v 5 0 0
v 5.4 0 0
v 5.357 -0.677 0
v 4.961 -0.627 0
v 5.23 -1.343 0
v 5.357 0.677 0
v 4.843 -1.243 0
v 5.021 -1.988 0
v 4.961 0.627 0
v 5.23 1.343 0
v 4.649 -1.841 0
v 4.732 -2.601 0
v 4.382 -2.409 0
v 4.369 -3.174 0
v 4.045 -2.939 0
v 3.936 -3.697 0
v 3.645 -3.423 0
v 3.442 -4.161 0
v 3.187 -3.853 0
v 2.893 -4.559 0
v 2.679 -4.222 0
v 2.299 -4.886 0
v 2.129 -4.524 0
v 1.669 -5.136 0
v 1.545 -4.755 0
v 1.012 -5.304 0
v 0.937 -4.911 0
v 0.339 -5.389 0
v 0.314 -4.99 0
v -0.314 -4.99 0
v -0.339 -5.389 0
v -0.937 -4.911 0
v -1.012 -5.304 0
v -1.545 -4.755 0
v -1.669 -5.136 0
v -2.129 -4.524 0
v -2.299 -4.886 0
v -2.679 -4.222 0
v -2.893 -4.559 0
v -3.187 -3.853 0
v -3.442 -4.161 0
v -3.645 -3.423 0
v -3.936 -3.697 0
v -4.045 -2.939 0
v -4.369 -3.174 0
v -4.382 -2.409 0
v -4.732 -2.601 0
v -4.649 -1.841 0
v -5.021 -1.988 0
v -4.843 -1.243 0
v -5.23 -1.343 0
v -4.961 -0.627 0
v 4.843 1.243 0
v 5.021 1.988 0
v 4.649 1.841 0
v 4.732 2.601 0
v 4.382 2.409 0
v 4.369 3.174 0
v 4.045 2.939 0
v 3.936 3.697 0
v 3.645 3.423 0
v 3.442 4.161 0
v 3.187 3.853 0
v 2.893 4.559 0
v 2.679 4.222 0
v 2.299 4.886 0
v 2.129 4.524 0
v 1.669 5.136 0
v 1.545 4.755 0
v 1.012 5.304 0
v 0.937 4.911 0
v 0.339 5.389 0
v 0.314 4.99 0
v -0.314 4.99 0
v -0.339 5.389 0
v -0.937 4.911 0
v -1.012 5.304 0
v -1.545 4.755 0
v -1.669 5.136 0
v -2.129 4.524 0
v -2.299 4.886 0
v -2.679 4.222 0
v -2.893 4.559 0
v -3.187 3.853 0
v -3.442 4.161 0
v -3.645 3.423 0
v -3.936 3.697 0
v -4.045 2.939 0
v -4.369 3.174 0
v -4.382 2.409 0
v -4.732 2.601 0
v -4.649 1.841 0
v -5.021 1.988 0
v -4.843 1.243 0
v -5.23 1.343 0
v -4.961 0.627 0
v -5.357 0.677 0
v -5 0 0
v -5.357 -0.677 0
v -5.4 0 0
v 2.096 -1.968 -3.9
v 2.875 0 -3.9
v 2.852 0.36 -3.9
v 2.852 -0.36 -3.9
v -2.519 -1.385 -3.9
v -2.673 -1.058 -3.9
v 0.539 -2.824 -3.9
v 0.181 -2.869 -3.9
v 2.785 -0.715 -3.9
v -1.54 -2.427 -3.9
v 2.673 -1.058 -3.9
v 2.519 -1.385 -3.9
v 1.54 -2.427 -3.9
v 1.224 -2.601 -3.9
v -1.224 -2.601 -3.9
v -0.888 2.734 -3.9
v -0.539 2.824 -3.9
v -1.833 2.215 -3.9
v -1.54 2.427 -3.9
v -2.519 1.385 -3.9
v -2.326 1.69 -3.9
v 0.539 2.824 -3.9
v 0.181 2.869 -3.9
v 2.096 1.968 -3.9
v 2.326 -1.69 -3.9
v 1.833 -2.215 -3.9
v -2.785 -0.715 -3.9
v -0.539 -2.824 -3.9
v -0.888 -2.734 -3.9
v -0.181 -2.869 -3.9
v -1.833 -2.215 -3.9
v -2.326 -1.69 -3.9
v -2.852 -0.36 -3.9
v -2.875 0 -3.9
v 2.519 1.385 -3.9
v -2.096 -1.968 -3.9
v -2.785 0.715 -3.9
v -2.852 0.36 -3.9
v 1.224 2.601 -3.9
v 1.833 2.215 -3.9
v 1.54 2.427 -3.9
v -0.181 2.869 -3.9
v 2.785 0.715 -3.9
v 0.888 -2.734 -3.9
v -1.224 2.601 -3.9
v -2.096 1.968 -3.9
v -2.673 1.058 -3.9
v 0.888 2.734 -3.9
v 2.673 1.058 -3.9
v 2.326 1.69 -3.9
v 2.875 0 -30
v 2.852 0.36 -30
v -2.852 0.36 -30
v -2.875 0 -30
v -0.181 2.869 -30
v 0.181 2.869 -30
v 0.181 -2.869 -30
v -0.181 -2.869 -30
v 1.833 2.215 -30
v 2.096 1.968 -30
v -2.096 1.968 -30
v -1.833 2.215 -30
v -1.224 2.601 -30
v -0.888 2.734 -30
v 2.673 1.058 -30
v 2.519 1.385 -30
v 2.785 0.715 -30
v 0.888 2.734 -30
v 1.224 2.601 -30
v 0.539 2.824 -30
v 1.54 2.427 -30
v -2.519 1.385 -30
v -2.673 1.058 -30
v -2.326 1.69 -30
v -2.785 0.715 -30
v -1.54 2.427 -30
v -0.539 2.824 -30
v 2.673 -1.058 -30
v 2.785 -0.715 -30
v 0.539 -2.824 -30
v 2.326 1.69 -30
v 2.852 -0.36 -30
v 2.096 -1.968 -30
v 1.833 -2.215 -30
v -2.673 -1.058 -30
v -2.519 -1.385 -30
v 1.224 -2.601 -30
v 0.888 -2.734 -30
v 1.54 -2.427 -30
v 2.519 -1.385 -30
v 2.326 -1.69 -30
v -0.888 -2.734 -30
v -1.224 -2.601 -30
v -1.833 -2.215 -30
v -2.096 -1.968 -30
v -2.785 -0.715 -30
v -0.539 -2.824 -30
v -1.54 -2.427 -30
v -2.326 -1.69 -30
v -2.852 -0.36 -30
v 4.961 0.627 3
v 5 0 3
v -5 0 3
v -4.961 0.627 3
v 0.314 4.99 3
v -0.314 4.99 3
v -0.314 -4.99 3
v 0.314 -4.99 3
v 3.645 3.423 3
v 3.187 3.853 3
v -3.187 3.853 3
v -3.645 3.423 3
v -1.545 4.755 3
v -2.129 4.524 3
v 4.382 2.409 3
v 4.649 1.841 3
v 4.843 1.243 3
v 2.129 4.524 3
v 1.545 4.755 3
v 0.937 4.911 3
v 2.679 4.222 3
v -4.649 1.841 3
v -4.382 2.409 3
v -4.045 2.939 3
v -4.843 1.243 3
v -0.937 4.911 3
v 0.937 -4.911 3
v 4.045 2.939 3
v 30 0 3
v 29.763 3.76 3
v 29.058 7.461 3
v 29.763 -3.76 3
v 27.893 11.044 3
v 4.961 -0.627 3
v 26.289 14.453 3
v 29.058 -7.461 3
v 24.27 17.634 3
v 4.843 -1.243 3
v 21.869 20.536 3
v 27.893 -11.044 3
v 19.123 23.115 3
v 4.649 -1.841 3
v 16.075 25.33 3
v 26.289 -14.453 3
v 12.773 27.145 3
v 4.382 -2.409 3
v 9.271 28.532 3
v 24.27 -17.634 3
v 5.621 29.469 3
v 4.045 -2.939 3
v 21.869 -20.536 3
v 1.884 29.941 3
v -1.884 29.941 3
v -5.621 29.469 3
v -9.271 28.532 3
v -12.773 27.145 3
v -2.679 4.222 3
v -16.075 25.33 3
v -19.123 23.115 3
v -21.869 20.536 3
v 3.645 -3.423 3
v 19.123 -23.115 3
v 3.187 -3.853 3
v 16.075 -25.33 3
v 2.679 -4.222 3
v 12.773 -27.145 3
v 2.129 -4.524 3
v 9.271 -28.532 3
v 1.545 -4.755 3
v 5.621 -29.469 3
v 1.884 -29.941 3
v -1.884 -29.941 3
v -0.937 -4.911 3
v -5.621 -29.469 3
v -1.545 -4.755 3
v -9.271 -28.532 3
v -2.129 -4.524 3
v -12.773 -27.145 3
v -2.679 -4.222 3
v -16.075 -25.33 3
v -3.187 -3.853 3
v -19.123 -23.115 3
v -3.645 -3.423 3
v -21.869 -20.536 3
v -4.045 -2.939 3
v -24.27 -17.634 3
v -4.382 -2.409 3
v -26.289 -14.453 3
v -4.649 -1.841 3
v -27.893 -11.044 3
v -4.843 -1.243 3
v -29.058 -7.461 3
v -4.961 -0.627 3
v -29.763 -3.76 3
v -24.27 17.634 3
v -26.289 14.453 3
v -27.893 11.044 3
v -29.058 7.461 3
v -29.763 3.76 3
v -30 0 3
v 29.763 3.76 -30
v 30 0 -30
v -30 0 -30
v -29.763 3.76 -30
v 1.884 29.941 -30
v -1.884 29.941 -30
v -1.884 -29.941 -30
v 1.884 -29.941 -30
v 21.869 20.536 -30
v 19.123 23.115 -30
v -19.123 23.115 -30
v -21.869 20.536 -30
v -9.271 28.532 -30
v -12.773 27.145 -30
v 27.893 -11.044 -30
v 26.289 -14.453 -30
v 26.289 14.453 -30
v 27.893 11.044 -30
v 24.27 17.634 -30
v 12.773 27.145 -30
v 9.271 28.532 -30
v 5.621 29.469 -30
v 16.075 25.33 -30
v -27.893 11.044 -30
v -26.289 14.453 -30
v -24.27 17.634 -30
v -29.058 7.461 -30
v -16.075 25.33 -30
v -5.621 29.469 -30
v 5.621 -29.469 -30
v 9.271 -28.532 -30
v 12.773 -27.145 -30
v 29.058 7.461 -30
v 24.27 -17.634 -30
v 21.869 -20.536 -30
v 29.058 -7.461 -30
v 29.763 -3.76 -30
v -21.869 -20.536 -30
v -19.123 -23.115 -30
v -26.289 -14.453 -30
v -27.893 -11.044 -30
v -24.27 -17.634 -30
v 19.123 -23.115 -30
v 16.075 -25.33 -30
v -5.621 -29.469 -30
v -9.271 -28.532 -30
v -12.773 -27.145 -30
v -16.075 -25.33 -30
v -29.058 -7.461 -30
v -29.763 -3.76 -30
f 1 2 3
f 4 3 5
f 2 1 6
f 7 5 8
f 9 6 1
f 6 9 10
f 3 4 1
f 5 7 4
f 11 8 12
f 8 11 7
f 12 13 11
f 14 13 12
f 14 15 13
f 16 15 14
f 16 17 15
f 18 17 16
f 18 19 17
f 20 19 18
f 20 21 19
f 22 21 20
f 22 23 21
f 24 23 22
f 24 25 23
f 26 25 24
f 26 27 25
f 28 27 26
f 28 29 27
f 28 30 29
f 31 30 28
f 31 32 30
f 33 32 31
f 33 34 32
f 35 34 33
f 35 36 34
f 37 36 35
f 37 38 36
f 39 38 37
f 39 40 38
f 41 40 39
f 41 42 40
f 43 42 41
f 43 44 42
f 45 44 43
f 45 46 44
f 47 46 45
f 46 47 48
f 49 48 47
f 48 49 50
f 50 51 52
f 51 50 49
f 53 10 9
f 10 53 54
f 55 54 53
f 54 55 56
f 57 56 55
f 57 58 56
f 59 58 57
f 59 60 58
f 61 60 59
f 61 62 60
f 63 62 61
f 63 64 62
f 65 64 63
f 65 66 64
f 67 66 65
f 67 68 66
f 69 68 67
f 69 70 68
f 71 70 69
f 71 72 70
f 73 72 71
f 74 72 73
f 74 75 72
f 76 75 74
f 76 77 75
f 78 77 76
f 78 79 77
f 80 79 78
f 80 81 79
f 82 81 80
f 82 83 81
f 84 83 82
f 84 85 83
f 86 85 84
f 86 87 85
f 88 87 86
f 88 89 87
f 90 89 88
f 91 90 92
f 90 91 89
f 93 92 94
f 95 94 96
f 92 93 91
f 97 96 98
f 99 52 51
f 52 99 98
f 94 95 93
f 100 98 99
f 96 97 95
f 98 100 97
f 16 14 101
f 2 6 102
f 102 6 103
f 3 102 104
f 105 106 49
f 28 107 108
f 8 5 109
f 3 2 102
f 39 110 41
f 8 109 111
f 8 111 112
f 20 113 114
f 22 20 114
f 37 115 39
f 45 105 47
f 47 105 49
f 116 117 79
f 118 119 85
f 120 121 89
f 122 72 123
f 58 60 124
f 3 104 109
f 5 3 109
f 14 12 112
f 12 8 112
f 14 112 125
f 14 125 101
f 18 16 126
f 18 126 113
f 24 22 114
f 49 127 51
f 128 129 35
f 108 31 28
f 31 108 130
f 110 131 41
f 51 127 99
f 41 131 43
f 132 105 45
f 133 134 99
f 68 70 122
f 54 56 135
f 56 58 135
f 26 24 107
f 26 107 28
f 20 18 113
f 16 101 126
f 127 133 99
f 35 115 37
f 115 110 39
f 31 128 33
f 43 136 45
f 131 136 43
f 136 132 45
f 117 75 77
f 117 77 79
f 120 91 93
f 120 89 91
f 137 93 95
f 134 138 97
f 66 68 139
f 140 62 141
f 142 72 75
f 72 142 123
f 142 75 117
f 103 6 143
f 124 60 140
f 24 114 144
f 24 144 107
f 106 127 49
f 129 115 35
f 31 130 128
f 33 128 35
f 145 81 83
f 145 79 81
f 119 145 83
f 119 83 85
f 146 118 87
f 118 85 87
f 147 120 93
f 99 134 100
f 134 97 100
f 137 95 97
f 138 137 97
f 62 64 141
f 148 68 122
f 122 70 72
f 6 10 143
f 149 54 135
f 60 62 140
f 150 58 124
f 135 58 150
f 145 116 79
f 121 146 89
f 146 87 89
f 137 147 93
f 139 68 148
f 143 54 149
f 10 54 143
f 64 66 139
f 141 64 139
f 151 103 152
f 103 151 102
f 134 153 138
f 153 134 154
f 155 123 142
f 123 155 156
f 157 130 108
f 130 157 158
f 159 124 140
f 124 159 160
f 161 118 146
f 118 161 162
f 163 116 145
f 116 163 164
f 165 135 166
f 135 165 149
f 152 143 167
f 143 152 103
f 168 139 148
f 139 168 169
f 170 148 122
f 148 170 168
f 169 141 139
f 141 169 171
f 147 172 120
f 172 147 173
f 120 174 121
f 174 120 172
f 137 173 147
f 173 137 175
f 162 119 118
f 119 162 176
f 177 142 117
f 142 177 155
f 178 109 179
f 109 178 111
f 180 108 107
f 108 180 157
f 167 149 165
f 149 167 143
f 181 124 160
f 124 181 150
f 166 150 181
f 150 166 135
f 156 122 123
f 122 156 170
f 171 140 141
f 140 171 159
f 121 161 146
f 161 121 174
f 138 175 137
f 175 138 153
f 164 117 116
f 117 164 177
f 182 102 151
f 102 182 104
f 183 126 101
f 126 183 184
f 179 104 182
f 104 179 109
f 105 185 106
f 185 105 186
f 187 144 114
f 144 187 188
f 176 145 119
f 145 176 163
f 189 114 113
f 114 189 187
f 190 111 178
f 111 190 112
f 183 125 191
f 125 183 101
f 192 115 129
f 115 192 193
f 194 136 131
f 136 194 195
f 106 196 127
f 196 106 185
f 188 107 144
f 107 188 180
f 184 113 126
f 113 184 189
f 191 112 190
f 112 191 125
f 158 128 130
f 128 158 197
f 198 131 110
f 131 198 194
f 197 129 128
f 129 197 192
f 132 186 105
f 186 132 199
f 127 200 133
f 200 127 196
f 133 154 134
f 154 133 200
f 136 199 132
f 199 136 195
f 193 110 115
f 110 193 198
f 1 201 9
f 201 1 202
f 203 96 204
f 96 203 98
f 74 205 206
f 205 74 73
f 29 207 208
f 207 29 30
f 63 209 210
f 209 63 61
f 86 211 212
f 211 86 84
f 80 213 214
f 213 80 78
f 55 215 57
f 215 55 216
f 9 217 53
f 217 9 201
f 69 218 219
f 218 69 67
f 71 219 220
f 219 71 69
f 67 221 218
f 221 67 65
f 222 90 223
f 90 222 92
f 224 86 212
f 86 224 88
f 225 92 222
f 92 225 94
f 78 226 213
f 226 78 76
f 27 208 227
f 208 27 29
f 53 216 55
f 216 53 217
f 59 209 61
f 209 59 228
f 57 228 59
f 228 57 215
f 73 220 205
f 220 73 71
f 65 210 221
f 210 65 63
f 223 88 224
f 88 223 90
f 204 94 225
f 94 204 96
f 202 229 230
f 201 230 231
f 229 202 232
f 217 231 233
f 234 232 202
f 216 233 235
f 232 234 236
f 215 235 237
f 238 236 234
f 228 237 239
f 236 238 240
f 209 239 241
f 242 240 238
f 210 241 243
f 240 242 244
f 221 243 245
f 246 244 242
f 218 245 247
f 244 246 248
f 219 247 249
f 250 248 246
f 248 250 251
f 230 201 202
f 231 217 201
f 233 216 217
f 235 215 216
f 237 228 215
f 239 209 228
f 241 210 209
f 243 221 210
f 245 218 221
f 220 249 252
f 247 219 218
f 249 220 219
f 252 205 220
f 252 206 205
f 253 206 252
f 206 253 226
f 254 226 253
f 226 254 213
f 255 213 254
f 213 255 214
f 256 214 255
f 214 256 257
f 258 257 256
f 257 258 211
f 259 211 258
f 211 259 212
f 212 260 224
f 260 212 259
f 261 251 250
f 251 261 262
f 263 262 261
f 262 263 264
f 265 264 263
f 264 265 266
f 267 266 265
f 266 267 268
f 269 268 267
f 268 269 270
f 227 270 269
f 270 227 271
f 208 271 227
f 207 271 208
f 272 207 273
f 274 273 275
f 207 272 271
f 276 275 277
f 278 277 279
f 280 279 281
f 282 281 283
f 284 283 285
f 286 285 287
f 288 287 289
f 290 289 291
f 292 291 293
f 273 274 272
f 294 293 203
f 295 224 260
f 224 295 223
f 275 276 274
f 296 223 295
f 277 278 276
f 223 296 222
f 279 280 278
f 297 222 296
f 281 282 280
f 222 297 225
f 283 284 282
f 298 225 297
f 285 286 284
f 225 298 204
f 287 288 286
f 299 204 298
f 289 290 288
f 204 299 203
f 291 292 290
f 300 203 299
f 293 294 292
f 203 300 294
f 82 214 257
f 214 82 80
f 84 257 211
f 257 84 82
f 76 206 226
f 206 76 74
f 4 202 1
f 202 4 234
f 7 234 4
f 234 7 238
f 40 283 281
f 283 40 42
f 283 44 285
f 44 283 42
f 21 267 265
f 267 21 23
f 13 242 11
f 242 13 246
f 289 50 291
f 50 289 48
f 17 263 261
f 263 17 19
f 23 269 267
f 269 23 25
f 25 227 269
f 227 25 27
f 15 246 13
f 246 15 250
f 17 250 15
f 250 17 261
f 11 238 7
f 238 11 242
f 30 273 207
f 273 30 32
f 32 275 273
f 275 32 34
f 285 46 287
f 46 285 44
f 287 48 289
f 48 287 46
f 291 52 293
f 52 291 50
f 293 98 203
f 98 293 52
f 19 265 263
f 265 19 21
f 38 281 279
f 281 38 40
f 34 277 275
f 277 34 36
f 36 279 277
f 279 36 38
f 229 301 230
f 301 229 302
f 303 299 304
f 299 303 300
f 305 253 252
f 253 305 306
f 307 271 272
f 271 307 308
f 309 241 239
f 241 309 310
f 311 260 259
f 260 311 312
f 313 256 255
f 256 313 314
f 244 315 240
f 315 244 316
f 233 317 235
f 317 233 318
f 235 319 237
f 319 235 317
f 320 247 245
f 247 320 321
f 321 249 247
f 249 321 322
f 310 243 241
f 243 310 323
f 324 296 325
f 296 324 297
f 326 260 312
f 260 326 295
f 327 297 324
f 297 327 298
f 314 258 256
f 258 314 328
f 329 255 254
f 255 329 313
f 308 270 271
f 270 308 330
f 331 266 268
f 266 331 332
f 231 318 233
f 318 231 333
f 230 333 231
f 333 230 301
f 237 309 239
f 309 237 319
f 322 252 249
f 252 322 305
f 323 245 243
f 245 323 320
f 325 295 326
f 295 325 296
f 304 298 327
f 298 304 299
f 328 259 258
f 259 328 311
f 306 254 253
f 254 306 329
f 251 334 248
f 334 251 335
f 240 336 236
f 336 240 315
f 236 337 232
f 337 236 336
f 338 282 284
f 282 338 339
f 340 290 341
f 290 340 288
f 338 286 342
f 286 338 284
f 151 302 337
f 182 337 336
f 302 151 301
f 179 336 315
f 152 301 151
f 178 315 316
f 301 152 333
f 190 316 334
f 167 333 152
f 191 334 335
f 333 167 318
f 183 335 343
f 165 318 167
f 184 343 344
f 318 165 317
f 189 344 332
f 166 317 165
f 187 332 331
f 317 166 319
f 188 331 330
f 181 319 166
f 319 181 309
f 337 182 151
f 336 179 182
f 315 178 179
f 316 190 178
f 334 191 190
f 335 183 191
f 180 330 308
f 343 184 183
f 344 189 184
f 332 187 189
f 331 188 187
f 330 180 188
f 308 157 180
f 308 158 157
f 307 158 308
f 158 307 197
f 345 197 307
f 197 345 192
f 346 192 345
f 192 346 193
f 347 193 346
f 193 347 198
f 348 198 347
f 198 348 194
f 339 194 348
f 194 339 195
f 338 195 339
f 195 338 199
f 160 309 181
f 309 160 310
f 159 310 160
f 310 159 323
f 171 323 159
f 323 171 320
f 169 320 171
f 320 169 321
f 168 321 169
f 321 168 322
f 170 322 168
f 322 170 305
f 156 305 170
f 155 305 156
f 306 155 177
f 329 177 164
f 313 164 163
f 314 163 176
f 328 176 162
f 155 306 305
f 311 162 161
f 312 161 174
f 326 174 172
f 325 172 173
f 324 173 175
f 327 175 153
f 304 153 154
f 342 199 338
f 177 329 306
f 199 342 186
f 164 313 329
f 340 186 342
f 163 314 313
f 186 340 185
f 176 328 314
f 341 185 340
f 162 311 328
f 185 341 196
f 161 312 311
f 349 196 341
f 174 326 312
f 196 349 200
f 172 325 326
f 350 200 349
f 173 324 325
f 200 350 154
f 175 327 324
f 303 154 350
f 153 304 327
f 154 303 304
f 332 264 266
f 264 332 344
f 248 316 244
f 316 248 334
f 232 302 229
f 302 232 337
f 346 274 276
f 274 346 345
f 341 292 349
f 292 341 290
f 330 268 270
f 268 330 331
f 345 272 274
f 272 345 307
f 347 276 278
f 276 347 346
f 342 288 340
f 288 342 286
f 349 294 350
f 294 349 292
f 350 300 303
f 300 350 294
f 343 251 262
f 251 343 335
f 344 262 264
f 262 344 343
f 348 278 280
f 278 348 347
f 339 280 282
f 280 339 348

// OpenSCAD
$fn = 50;


difference() {
	union() {
		translate(v = [0, 0, -30.0000000000]) {
			cylinder(h = 33, r = 30.0000000000);
		}
	}
	union() {
		translate(v = [0, 0, 0]) {
			rotate(a = [0, 0, 0]) {
				difference() {
					union() {
						translate(v = [0, 0, -33.0000000000]) {
							cylinder(h = 33, r = 2.6000000000);
						}
						translate(v = [0, 0, -3.9000000000]) {
							cylinder(h = 3.9000000000, r1 = 2.8750000000, r2 = 5.4000000000);
						}
						translate(v = [0, 0, -33.0000000000]) {
							cylinder(h = 33, r = 2.8750000000);
						}
						translate(v = [0, 0, -33.0000000000]) {
							cylinder(h = 33, r = 2.6000000000);
						}
					}
					union();
				}
			}
		}
		#cylinder(h = 3, r = 5.0000000000);
	}
}
